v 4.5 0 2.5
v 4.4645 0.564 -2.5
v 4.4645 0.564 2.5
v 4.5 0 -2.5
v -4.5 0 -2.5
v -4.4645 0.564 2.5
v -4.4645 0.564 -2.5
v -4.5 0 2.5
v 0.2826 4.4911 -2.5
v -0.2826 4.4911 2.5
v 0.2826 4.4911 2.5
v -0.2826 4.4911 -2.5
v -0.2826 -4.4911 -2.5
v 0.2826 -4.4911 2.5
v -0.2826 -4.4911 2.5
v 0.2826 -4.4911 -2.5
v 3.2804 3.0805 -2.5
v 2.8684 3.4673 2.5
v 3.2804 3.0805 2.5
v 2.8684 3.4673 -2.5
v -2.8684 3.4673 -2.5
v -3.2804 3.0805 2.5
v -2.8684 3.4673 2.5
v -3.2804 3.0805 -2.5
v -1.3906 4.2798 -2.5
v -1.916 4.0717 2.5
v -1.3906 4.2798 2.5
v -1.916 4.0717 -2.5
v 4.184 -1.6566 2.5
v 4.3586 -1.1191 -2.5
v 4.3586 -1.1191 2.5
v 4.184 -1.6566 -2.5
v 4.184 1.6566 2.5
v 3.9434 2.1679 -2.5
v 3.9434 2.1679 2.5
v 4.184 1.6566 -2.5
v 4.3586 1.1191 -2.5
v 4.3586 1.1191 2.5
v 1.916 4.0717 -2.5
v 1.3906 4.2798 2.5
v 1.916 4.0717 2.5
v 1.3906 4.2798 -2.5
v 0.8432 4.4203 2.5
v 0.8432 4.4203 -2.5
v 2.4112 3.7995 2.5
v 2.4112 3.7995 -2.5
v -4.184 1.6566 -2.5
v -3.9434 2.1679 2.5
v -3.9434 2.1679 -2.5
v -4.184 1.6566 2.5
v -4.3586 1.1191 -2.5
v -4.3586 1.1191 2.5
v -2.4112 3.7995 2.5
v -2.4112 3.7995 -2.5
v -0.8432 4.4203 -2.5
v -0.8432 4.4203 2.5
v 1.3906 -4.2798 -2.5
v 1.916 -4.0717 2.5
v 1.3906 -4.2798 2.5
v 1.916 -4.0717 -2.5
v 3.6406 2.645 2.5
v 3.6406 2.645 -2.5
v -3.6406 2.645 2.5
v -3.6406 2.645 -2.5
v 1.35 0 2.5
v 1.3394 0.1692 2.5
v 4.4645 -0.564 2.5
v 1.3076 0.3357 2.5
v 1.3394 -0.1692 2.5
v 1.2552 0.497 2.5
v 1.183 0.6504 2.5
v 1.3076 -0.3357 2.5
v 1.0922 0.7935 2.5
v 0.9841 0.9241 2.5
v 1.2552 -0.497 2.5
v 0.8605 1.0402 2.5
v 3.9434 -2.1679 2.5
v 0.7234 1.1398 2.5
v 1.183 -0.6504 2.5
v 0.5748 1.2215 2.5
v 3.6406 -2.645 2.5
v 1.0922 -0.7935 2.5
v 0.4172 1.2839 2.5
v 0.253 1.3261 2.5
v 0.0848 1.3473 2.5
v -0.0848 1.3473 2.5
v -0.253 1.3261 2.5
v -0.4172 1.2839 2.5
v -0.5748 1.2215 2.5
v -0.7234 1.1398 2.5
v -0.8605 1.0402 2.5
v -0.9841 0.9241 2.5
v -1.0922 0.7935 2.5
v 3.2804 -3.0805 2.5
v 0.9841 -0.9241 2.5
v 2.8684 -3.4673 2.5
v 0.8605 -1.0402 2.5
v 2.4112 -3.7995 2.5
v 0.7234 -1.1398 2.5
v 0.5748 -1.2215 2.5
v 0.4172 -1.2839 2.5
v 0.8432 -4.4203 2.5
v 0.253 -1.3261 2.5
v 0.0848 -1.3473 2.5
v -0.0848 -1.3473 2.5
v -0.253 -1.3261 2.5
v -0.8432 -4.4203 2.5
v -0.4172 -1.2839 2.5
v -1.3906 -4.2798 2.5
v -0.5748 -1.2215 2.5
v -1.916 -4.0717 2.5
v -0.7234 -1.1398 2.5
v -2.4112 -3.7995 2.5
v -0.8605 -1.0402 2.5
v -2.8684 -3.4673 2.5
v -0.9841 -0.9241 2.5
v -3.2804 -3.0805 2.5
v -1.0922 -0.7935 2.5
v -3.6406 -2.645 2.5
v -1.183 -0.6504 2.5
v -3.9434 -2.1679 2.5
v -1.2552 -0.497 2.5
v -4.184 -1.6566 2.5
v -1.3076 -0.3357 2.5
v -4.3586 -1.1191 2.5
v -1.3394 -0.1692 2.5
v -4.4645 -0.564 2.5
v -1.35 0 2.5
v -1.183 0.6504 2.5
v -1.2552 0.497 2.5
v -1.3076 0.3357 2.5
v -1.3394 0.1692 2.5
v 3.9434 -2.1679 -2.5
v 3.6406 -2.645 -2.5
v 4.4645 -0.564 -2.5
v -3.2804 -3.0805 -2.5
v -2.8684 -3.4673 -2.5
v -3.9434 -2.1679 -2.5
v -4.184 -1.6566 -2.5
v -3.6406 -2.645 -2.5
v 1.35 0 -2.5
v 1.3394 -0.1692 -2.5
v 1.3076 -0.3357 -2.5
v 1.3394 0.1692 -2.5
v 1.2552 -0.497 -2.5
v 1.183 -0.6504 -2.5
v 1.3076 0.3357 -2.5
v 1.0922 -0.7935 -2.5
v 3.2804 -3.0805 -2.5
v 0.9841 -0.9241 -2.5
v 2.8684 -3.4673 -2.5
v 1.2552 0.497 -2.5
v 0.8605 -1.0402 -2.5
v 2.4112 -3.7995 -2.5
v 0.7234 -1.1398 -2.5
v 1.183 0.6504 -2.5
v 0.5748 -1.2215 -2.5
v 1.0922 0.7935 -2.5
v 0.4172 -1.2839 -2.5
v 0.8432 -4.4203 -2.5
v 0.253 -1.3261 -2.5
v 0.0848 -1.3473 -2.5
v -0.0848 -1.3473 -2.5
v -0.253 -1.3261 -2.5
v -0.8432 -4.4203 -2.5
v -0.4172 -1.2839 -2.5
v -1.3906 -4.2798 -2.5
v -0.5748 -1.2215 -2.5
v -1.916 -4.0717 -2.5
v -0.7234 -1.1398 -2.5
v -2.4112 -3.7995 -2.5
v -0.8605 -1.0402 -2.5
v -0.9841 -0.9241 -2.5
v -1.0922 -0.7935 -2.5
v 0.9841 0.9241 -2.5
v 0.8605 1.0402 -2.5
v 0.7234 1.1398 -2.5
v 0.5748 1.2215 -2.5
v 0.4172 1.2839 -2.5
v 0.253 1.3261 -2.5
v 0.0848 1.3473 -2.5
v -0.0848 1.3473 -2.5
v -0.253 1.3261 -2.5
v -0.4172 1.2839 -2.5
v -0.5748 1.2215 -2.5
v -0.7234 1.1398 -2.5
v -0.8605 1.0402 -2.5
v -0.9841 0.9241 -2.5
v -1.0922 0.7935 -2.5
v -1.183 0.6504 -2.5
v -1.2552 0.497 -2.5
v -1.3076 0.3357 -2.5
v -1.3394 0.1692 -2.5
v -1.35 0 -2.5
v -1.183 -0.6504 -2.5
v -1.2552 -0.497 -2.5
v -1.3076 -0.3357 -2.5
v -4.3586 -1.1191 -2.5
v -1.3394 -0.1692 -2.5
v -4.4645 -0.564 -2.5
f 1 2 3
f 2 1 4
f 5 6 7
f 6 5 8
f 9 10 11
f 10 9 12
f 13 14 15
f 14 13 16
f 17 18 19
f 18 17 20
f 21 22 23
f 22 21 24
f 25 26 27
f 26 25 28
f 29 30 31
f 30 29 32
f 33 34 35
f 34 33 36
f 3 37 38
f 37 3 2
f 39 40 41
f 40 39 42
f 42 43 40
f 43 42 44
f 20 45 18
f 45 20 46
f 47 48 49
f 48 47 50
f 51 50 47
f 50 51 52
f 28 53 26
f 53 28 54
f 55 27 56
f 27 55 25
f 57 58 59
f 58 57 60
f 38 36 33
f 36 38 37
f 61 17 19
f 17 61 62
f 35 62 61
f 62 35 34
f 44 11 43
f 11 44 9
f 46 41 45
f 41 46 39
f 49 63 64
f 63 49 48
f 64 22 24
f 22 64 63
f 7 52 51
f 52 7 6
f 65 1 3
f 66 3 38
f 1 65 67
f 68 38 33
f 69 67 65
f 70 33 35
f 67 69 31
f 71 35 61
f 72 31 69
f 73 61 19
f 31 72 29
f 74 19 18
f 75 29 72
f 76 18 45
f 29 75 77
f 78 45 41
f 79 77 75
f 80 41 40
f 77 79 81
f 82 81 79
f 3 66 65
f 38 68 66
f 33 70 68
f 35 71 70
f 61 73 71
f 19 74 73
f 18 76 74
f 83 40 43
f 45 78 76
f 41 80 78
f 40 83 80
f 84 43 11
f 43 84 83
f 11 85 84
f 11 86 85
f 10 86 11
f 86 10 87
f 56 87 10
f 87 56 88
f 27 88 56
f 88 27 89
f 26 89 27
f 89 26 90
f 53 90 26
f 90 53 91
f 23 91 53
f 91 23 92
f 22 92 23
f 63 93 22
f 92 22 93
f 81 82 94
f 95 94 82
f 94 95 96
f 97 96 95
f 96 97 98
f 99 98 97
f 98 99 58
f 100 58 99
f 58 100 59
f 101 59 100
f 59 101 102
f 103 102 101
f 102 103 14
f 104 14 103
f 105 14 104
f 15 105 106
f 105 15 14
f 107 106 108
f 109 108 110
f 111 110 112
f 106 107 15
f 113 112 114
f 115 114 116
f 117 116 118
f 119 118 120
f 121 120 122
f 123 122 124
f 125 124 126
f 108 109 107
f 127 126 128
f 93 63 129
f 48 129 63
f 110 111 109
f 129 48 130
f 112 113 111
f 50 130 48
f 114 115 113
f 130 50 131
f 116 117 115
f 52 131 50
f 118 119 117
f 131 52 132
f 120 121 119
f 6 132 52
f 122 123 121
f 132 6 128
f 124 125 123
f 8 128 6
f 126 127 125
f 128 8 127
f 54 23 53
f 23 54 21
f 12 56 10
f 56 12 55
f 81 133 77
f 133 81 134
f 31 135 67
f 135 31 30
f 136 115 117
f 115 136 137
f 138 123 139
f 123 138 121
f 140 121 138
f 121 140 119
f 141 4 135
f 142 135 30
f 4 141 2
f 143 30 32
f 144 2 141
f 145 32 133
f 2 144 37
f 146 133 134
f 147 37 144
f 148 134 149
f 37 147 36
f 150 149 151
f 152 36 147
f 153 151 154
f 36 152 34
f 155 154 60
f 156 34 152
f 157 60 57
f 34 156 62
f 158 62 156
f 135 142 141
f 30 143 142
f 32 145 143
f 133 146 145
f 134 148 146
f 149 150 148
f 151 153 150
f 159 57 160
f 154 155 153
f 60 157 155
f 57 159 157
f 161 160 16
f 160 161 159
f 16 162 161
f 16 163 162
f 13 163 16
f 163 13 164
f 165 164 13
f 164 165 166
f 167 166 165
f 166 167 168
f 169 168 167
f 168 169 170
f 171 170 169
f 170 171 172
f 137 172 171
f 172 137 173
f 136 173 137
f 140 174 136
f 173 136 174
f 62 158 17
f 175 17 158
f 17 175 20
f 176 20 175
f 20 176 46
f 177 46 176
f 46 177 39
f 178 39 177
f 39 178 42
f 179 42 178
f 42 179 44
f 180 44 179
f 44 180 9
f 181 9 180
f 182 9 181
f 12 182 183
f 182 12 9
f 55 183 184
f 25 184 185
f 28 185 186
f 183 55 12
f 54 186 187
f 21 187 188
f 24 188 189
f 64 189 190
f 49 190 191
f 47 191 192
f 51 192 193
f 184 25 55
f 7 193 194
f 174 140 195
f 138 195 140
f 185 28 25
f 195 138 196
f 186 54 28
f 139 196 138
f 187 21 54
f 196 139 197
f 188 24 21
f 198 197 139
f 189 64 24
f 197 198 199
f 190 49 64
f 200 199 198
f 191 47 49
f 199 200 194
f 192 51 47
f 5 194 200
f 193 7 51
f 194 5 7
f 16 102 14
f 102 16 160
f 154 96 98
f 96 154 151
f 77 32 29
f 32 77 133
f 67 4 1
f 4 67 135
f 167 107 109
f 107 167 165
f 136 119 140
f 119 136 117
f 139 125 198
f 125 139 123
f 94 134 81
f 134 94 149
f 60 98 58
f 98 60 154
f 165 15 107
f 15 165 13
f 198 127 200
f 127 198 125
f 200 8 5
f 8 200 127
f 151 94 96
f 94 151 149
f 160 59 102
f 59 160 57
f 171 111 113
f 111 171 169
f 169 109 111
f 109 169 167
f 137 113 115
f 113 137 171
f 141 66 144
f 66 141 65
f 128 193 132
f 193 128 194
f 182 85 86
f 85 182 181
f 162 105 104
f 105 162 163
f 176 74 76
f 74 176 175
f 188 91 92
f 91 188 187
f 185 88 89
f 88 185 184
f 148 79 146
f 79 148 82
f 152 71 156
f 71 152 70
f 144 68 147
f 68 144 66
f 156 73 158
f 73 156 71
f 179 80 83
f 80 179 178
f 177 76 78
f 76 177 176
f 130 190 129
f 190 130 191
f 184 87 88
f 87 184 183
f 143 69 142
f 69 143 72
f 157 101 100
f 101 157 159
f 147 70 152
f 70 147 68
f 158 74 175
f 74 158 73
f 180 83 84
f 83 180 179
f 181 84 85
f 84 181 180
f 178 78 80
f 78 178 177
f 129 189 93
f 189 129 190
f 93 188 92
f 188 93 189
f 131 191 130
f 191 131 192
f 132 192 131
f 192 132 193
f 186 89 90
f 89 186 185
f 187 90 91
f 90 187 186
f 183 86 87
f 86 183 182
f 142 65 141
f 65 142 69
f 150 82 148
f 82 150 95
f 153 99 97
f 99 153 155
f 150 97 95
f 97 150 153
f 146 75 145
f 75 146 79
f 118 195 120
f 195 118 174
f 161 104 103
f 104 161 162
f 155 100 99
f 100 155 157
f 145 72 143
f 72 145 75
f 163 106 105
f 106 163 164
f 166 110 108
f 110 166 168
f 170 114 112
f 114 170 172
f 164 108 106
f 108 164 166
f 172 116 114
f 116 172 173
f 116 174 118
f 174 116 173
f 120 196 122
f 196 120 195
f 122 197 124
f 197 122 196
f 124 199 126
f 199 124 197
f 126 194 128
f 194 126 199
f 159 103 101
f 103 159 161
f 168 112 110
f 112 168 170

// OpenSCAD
$fn = 50;


difference() {
	union() {
		translate(v = [0, 0, -2.5000000000]) {
			cylinder(h = 5, r = 4.5000000000);
		}
	}
	union() {
		translate(v = [0, 0, -100.0000000000]) {
			cylinder(h = 200, r = 1.3500000000);
		}
	}
}
